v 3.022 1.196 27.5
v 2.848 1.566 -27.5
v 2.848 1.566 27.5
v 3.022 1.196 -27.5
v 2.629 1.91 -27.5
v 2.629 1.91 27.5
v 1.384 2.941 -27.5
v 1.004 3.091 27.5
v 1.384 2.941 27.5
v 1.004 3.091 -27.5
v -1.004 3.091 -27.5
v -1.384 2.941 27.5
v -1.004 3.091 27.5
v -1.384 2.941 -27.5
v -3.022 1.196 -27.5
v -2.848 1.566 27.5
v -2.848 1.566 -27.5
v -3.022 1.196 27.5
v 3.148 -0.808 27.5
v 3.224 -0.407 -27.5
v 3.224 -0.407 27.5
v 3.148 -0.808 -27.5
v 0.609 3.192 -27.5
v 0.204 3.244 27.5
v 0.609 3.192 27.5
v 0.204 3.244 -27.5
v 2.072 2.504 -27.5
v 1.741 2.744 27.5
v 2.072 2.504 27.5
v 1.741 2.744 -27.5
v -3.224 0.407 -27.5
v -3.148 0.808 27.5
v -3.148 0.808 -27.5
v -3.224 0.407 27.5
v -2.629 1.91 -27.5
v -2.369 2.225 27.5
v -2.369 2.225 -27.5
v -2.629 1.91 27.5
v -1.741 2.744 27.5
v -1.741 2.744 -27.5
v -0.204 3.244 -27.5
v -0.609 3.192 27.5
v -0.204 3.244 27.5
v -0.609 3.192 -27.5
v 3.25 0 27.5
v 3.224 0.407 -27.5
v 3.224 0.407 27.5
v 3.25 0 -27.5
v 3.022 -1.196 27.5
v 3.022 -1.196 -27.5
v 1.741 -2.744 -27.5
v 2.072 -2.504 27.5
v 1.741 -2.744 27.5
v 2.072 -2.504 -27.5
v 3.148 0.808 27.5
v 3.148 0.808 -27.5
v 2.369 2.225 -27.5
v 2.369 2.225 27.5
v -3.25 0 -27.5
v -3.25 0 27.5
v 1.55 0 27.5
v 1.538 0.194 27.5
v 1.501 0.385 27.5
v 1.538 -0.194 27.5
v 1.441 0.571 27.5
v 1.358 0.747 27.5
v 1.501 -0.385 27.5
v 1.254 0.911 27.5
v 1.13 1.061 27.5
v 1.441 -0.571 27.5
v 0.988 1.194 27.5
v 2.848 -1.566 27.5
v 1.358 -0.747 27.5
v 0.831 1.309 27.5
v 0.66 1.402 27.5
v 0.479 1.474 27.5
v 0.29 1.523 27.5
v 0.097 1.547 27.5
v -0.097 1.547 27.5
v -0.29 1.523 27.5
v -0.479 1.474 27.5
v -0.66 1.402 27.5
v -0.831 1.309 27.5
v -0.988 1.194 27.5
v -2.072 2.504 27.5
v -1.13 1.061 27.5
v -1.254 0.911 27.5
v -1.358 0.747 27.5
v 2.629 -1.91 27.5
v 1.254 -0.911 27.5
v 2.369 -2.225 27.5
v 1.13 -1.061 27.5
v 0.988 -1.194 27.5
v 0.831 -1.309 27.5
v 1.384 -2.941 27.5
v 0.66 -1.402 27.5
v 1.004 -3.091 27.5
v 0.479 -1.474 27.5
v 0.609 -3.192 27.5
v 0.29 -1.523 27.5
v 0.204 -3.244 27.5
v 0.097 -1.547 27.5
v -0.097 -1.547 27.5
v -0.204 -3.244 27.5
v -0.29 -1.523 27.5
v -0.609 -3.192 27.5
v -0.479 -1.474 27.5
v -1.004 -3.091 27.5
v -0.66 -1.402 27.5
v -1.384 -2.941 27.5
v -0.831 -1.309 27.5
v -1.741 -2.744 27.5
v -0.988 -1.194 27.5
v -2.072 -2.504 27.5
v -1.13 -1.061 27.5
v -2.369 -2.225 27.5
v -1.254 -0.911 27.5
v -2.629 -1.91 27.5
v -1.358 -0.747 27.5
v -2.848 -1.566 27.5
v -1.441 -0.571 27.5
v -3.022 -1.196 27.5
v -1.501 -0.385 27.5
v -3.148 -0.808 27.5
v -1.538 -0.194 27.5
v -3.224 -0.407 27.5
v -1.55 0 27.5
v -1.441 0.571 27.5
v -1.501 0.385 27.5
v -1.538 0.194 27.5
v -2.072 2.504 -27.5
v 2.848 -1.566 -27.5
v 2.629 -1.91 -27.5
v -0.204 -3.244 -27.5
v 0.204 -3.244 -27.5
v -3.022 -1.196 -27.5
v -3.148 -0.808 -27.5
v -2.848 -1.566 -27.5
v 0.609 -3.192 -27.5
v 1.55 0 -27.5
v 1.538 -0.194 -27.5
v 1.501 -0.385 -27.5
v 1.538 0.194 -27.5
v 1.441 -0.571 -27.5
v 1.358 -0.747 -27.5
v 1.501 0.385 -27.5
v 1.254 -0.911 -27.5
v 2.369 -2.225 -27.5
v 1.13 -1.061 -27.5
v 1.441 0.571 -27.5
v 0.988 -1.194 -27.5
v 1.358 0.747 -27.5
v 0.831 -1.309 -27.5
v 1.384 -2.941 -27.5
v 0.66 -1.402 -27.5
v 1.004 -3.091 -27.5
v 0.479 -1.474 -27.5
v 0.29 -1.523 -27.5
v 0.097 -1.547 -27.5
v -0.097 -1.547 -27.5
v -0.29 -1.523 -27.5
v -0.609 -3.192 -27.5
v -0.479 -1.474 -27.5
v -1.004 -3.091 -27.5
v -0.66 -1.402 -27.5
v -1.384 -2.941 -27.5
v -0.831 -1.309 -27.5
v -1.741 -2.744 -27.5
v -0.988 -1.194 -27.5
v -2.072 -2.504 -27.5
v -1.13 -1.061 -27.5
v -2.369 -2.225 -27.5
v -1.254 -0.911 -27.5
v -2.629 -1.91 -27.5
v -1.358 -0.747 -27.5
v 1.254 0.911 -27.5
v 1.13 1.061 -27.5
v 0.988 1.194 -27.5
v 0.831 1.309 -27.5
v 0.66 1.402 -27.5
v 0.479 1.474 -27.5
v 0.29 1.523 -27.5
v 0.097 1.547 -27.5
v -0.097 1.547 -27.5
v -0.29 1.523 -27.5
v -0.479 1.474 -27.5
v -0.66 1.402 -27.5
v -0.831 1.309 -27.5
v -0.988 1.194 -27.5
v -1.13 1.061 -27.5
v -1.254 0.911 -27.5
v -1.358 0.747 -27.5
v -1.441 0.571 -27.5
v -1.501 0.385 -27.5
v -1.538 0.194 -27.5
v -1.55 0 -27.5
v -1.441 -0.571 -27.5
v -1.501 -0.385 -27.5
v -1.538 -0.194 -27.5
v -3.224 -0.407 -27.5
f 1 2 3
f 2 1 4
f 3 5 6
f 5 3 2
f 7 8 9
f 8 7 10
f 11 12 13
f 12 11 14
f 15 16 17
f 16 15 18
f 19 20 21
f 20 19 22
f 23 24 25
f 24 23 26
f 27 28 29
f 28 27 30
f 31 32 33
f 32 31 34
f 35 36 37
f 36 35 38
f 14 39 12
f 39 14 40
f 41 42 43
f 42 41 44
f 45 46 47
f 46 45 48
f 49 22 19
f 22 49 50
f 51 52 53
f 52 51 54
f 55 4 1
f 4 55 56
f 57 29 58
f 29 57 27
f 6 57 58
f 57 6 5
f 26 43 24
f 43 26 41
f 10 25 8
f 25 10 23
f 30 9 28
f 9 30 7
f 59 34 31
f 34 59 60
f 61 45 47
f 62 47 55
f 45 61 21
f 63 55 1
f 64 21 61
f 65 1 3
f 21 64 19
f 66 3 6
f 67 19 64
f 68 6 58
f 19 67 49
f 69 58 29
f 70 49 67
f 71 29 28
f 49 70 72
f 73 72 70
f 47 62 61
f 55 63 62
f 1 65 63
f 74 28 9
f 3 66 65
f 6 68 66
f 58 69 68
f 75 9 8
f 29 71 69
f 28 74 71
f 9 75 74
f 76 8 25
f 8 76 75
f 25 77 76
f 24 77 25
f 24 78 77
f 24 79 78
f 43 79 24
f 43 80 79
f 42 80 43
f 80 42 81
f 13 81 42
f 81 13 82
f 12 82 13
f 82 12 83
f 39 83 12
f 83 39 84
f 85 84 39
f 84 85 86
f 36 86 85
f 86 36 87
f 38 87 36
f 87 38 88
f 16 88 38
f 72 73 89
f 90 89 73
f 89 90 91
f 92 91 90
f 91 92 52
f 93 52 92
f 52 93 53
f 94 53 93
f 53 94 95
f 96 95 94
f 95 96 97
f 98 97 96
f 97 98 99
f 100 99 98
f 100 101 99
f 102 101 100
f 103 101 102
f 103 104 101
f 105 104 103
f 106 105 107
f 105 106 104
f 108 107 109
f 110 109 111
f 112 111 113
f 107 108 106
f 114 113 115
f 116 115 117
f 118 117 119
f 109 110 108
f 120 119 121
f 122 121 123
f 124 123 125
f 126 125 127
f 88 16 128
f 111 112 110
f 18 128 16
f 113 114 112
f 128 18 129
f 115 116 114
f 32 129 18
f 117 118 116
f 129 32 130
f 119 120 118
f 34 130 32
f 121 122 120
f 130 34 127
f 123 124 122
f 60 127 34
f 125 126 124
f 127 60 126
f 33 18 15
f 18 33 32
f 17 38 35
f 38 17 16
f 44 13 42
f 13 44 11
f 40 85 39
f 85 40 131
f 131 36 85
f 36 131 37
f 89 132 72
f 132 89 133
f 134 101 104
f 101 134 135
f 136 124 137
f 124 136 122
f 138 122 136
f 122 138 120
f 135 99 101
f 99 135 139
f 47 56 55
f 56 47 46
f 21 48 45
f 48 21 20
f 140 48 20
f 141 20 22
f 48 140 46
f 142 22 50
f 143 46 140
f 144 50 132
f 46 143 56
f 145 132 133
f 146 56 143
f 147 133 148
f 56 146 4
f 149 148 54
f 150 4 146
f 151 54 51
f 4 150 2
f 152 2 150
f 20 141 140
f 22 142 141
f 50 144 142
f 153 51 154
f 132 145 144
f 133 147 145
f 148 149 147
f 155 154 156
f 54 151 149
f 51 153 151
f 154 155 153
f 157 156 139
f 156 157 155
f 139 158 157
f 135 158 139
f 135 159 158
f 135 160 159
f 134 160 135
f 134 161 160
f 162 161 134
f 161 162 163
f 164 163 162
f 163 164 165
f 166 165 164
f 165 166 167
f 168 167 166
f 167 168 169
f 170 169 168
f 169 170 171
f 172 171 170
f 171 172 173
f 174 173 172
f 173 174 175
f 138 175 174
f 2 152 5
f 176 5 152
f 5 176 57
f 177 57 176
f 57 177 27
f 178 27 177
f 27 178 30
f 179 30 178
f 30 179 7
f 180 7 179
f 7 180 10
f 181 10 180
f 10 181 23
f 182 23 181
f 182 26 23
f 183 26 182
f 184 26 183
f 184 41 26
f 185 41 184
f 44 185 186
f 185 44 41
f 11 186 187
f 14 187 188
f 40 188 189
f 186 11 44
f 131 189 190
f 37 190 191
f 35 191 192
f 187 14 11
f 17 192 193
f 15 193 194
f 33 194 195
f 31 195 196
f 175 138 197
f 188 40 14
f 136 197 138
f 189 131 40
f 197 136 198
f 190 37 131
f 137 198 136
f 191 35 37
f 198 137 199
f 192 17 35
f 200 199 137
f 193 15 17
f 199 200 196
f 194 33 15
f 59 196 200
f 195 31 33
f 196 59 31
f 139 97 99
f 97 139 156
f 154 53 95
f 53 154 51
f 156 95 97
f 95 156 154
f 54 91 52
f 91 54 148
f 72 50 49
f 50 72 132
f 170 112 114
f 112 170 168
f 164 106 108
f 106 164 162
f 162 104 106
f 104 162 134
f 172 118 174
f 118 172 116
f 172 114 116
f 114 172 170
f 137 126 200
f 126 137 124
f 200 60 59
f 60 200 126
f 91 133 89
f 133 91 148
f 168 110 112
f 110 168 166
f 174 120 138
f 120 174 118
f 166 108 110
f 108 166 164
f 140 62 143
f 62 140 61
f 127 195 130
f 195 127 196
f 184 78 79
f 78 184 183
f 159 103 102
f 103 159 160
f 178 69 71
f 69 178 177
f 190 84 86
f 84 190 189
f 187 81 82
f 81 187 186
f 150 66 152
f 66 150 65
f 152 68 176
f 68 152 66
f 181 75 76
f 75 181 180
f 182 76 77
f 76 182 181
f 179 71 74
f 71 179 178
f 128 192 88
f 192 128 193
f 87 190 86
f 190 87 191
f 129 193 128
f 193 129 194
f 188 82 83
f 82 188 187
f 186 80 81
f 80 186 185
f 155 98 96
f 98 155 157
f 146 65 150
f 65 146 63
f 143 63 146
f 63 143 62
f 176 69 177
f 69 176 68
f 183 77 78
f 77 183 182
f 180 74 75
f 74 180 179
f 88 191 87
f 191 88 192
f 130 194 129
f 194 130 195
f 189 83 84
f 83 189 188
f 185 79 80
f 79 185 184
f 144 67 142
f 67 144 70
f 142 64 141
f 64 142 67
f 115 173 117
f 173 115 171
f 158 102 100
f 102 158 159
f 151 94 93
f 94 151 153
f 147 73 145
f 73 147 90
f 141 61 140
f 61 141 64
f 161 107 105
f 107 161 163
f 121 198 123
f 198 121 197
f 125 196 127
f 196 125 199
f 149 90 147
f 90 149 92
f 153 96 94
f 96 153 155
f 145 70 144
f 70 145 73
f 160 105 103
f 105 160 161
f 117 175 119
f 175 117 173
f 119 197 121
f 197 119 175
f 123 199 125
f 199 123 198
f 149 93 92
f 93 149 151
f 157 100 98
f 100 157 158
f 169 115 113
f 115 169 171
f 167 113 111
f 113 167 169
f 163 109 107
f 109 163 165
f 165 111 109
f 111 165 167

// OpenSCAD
$fn = 50;


difference() {
	union() {
		translate(v = [0, 0, -27.5000000000]) {
			cylinder(h = 55, r = 3.2500000000);
		}
	}
	union() {
		translate(v = [0, 0, -100.0000000000]) {
			cylinder(h = 200, r = 1.5500000000);
		}
	}
}
